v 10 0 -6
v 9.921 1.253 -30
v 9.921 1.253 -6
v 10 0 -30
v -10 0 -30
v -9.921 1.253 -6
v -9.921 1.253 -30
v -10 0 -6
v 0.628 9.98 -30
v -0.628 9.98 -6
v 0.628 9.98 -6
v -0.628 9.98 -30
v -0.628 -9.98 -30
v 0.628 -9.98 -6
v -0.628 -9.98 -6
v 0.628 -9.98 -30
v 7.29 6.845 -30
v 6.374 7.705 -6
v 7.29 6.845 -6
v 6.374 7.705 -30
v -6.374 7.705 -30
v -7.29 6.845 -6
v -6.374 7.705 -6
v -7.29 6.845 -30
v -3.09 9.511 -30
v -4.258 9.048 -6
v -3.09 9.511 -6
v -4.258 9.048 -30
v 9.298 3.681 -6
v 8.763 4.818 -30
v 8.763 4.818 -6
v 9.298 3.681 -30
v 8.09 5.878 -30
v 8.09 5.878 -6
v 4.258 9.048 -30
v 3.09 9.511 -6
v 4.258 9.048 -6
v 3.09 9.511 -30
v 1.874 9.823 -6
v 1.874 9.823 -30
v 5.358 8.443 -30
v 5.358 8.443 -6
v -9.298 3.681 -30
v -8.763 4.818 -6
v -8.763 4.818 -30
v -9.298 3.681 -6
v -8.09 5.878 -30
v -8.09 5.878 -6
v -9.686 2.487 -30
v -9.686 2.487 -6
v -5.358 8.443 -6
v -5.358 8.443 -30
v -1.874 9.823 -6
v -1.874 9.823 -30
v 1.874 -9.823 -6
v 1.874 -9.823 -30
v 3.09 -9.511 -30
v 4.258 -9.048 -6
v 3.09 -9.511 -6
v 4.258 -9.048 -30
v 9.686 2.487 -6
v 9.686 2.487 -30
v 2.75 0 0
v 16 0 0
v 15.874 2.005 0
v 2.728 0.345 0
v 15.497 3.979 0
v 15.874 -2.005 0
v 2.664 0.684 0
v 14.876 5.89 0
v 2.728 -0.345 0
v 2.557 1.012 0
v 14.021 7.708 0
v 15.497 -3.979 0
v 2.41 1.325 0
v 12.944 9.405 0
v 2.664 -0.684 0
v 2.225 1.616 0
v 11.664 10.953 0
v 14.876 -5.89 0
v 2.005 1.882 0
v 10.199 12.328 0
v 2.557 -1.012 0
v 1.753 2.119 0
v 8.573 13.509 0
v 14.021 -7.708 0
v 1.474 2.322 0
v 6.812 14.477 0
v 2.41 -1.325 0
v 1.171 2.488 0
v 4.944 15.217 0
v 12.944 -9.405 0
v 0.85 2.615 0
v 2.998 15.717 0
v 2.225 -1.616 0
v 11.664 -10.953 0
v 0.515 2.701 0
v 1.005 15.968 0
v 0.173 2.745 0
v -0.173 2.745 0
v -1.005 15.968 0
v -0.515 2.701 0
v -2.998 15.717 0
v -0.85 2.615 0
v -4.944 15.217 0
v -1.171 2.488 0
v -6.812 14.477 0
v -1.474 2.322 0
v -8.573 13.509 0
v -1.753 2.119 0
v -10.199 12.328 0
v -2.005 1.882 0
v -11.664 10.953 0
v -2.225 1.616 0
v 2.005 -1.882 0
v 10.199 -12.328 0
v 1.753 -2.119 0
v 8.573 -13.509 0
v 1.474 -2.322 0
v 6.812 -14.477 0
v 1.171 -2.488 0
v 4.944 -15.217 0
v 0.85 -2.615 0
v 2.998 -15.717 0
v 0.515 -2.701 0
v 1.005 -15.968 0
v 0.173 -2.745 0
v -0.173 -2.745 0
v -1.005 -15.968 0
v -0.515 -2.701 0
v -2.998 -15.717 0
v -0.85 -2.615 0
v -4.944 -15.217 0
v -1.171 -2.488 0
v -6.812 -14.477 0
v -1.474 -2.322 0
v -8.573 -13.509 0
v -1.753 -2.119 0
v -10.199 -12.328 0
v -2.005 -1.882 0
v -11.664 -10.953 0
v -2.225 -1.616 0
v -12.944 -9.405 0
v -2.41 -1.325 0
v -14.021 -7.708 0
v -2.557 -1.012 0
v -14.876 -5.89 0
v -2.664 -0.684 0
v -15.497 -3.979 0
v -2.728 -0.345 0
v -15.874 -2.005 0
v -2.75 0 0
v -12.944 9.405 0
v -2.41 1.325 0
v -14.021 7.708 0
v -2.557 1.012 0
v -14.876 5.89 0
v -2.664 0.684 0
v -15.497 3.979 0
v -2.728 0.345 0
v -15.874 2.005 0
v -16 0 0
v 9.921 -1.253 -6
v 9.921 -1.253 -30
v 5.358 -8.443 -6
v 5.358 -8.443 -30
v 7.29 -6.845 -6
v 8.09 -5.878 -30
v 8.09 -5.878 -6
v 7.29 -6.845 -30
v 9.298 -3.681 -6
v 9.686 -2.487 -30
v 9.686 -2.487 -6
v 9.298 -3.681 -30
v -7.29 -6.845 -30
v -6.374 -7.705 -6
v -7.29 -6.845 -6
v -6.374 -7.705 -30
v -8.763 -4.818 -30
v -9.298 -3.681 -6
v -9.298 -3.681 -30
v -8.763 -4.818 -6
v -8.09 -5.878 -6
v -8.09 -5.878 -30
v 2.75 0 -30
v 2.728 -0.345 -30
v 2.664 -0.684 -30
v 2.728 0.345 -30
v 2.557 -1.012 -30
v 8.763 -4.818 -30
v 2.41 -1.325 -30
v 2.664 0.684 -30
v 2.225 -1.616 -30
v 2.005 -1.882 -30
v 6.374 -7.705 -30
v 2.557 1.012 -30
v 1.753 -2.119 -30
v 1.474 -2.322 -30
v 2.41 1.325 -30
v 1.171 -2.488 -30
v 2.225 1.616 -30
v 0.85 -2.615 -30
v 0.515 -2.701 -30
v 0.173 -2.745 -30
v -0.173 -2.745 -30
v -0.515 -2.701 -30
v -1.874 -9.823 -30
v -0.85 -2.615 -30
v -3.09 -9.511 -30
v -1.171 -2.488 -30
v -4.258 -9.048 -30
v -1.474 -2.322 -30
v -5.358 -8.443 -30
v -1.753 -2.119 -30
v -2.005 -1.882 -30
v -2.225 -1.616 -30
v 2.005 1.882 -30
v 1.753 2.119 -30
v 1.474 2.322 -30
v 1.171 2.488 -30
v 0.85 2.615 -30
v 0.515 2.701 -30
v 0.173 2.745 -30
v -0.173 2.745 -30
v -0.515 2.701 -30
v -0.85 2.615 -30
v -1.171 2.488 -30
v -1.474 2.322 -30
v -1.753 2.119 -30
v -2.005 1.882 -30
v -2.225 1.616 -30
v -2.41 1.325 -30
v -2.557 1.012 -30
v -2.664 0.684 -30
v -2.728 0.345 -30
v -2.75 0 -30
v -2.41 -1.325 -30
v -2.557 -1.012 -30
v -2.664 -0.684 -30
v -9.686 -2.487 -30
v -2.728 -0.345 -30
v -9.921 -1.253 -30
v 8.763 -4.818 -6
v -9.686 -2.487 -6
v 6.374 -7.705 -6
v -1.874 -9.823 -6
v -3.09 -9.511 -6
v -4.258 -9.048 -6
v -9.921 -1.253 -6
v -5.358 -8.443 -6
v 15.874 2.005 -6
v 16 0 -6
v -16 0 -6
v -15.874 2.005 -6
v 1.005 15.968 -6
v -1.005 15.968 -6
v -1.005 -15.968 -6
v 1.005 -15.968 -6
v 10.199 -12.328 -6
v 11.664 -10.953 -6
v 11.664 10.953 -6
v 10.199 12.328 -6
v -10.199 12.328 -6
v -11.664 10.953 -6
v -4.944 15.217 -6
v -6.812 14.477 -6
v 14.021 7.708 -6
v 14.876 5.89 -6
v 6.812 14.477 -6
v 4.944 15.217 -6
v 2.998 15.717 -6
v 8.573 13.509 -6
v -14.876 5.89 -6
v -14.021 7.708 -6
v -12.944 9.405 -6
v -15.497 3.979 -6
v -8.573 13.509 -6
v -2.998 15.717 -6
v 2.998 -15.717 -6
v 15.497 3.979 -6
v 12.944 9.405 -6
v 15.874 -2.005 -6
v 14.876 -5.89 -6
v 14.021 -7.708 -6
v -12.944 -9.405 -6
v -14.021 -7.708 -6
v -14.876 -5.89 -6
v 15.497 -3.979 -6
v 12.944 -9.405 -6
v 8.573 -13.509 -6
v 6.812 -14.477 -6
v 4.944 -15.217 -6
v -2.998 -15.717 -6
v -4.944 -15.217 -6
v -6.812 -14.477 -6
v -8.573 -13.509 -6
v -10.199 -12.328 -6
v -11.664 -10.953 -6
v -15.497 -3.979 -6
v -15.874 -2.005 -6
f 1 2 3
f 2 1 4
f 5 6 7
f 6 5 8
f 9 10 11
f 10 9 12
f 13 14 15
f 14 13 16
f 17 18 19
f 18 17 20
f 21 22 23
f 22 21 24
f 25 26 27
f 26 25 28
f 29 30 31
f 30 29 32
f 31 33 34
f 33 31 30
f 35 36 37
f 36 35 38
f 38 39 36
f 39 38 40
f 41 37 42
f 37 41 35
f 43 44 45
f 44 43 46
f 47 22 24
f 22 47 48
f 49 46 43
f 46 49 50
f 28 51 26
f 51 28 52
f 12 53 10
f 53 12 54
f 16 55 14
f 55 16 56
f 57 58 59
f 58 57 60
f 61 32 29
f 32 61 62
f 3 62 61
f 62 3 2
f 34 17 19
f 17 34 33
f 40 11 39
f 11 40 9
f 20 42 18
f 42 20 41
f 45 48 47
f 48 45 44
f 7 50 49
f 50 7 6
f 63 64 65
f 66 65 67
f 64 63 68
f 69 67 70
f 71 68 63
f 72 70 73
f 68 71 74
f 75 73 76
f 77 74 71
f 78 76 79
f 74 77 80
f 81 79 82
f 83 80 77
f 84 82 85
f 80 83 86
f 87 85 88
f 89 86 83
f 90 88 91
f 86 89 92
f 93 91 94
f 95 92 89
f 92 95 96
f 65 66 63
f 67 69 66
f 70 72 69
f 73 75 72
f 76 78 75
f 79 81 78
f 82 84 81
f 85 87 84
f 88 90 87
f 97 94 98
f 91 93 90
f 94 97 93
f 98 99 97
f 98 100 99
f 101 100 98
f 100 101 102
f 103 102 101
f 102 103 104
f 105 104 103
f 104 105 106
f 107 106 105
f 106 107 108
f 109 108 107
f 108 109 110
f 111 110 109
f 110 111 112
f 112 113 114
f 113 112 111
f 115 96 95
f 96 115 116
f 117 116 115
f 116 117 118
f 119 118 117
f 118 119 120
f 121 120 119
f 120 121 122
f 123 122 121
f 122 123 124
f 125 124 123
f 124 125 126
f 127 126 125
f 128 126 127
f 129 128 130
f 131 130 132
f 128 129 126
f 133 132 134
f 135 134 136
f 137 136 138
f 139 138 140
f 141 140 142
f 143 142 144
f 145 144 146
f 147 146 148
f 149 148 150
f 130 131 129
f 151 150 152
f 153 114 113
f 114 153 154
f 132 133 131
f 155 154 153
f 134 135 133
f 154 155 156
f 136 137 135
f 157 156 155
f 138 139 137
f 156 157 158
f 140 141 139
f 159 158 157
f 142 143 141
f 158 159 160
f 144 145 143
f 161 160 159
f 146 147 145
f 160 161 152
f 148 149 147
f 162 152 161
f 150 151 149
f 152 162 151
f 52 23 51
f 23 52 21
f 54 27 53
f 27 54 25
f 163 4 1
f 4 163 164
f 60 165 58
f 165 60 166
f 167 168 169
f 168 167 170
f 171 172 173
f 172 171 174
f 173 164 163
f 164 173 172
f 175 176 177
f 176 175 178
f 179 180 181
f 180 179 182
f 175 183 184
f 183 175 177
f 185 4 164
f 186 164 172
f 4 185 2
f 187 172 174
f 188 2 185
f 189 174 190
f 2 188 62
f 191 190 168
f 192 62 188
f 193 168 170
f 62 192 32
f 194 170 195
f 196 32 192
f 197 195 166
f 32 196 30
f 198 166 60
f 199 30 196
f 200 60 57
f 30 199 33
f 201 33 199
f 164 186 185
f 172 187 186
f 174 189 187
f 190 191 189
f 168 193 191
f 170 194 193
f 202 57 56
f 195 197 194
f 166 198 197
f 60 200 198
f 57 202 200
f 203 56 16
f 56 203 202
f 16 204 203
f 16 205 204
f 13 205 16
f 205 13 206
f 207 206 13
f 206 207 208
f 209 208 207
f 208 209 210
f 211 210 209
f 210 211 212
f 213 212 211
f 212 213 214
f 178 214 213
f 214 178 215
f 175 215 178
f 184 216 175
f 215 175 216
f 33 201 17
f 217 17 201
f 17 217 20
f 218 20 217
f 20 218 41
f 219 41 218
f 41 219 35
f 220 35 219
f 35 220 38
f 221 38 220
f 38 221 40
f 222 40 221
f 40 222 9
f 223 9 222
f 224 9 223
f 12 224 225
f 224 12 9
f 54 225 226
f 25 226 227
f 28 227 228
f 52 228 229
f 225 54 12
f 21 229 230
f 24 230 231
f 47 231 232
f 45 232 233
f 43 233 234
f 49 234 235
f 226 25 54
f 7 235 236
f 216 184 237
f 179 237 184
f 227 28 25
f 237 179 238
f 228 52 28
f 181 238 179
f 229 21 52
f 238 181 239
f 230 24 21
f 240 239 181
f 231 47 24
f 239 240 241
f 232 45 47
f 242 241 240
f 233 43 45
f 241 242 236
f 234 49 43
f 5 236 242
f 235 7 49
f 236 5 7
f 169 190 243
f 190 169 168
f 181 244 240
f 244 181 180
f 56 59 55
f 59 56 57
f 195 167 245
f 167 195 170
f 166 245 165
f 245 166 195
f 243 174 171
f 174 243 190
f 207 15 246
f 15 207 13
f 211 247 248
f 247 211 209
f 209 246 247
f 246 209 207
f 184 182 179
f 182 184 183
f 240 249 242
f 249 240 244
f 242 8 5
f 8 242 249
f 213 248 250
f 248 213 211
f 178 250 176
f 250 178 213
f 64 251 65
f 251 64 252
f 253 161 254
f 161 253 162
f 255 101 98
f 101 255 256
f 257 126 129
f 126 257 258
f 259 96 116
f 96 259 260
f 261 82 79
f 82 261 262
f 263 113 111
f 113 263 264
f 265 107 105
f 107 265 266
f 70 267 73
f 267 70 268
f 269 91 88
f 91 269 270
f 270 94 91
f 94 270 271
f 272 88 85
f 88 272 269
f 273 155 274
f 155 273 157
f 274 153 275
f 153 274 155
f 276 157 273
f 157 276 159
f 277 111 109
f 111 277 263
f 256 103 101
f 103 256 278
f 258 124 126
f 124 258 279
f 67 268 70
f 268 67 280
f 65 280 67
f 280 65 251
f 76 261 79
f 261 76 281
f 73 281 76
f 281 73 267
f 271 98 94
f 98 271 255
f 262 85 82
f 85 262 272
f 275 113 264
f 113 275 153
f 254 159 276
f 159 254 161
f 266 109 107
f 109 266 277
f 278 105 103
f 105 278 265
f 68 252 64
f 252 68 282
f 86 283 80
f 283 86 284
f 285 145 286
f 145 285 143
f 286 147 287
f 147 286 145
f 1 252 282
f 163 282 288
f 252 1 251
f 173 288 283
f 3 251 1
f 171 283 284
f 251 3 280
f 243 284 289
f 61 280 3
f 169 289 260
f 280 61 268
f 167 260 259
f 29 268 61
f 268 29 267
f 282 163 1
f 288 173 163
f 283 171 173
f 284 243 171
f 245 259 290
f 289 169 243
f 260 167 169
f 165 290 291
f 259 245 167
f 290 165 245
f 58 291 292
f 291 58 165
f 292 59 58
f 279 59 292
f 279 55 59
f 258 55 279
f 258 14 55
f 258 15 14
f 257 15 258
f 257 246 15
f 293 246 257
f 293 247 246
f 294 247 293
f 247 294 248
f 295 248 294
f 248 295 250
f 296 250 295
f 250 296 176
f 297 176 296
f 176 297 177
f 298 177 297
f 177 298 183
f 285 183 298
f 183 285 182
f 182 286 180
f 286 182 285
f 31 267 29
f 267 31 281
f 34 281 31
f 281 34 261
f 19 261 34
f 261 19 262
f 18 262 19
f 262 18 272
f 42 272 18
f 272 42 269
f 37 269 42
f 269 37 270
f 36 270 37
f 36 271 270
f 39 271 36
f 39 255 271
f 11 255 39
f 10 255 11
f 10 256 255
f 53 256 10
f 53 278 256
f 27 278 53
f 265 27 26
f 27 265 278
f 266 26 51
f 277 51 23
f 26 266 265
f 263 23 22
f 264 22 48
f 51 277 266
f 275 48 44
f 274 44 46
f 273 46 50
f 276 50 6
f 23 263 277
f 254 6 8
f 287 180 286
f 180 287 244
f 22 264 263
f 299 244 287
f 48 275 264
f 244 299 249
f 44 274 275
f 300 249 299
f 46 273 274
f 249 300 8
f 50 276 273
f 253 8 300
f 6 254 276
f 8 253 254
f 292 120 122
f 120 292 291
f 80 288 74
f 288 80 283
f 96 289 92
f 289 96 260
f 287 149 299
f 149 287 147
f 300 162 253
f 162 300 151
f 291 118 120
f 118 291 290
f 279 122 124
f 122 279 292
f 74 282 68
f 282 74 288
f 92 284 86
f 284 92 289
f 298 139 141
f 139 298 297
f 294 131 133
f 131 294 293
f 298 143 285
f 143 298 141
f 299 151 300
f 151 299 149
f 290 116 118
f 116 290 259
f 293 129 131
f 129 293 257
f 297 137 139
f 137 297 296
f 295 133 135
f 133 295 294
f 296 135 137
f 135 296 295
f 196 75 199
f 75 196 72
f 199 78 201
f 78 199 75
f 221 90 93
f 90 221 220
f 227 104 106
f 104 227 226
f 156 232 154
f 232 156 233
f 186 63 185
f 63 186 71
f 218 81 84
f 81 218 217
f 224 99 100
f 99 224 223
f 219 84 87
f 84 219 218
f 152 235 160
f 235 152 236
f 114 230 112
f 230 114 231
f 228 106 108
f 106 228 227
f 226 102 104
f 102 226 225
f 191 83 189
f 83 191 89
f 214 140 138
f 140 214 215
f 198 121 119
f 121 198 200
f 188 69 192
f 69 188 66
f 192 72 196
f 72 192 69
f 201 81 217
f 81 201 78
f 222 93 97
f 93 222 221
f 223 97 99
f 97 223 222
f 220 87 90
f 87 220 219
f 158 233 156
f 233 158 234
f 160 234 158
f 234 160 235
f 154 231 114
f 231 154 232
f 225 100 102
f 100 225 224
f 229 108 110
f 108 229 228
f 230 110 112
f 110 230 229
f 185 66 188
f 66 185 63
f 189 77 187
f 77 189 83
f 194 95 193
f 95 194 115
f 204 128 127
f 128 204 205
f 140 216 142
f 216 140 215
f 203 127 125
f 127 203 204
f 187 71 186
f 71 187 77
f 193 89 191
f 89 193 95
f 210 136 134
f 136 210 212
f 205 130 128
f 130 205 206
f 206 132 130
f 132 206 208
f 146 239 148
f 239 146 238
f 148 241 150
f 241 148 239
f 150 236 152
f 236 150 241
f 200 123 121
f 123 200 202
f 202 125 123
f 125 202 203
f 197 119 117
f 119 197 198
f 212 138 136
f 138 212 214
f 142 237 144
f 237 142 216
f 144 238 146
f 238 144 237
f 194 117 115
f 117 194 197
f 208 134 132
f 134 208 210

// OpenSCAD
$fn = 50;


difference() {
	union() {
		translate(v = [0, 0, -30.0000000000]) {
			cylinder(h = 30, r = 10.0000000000);
		}
		translate(v = [0, 0, -6.0000000000]) {
			cylinder(h = 6, r = 16.0000000000);
		}
	}
	union() {
		#translate(v = [0, 0, -30]) {
			cylinder(h = 30, r = 2.7500000000);
		}
	}
}
